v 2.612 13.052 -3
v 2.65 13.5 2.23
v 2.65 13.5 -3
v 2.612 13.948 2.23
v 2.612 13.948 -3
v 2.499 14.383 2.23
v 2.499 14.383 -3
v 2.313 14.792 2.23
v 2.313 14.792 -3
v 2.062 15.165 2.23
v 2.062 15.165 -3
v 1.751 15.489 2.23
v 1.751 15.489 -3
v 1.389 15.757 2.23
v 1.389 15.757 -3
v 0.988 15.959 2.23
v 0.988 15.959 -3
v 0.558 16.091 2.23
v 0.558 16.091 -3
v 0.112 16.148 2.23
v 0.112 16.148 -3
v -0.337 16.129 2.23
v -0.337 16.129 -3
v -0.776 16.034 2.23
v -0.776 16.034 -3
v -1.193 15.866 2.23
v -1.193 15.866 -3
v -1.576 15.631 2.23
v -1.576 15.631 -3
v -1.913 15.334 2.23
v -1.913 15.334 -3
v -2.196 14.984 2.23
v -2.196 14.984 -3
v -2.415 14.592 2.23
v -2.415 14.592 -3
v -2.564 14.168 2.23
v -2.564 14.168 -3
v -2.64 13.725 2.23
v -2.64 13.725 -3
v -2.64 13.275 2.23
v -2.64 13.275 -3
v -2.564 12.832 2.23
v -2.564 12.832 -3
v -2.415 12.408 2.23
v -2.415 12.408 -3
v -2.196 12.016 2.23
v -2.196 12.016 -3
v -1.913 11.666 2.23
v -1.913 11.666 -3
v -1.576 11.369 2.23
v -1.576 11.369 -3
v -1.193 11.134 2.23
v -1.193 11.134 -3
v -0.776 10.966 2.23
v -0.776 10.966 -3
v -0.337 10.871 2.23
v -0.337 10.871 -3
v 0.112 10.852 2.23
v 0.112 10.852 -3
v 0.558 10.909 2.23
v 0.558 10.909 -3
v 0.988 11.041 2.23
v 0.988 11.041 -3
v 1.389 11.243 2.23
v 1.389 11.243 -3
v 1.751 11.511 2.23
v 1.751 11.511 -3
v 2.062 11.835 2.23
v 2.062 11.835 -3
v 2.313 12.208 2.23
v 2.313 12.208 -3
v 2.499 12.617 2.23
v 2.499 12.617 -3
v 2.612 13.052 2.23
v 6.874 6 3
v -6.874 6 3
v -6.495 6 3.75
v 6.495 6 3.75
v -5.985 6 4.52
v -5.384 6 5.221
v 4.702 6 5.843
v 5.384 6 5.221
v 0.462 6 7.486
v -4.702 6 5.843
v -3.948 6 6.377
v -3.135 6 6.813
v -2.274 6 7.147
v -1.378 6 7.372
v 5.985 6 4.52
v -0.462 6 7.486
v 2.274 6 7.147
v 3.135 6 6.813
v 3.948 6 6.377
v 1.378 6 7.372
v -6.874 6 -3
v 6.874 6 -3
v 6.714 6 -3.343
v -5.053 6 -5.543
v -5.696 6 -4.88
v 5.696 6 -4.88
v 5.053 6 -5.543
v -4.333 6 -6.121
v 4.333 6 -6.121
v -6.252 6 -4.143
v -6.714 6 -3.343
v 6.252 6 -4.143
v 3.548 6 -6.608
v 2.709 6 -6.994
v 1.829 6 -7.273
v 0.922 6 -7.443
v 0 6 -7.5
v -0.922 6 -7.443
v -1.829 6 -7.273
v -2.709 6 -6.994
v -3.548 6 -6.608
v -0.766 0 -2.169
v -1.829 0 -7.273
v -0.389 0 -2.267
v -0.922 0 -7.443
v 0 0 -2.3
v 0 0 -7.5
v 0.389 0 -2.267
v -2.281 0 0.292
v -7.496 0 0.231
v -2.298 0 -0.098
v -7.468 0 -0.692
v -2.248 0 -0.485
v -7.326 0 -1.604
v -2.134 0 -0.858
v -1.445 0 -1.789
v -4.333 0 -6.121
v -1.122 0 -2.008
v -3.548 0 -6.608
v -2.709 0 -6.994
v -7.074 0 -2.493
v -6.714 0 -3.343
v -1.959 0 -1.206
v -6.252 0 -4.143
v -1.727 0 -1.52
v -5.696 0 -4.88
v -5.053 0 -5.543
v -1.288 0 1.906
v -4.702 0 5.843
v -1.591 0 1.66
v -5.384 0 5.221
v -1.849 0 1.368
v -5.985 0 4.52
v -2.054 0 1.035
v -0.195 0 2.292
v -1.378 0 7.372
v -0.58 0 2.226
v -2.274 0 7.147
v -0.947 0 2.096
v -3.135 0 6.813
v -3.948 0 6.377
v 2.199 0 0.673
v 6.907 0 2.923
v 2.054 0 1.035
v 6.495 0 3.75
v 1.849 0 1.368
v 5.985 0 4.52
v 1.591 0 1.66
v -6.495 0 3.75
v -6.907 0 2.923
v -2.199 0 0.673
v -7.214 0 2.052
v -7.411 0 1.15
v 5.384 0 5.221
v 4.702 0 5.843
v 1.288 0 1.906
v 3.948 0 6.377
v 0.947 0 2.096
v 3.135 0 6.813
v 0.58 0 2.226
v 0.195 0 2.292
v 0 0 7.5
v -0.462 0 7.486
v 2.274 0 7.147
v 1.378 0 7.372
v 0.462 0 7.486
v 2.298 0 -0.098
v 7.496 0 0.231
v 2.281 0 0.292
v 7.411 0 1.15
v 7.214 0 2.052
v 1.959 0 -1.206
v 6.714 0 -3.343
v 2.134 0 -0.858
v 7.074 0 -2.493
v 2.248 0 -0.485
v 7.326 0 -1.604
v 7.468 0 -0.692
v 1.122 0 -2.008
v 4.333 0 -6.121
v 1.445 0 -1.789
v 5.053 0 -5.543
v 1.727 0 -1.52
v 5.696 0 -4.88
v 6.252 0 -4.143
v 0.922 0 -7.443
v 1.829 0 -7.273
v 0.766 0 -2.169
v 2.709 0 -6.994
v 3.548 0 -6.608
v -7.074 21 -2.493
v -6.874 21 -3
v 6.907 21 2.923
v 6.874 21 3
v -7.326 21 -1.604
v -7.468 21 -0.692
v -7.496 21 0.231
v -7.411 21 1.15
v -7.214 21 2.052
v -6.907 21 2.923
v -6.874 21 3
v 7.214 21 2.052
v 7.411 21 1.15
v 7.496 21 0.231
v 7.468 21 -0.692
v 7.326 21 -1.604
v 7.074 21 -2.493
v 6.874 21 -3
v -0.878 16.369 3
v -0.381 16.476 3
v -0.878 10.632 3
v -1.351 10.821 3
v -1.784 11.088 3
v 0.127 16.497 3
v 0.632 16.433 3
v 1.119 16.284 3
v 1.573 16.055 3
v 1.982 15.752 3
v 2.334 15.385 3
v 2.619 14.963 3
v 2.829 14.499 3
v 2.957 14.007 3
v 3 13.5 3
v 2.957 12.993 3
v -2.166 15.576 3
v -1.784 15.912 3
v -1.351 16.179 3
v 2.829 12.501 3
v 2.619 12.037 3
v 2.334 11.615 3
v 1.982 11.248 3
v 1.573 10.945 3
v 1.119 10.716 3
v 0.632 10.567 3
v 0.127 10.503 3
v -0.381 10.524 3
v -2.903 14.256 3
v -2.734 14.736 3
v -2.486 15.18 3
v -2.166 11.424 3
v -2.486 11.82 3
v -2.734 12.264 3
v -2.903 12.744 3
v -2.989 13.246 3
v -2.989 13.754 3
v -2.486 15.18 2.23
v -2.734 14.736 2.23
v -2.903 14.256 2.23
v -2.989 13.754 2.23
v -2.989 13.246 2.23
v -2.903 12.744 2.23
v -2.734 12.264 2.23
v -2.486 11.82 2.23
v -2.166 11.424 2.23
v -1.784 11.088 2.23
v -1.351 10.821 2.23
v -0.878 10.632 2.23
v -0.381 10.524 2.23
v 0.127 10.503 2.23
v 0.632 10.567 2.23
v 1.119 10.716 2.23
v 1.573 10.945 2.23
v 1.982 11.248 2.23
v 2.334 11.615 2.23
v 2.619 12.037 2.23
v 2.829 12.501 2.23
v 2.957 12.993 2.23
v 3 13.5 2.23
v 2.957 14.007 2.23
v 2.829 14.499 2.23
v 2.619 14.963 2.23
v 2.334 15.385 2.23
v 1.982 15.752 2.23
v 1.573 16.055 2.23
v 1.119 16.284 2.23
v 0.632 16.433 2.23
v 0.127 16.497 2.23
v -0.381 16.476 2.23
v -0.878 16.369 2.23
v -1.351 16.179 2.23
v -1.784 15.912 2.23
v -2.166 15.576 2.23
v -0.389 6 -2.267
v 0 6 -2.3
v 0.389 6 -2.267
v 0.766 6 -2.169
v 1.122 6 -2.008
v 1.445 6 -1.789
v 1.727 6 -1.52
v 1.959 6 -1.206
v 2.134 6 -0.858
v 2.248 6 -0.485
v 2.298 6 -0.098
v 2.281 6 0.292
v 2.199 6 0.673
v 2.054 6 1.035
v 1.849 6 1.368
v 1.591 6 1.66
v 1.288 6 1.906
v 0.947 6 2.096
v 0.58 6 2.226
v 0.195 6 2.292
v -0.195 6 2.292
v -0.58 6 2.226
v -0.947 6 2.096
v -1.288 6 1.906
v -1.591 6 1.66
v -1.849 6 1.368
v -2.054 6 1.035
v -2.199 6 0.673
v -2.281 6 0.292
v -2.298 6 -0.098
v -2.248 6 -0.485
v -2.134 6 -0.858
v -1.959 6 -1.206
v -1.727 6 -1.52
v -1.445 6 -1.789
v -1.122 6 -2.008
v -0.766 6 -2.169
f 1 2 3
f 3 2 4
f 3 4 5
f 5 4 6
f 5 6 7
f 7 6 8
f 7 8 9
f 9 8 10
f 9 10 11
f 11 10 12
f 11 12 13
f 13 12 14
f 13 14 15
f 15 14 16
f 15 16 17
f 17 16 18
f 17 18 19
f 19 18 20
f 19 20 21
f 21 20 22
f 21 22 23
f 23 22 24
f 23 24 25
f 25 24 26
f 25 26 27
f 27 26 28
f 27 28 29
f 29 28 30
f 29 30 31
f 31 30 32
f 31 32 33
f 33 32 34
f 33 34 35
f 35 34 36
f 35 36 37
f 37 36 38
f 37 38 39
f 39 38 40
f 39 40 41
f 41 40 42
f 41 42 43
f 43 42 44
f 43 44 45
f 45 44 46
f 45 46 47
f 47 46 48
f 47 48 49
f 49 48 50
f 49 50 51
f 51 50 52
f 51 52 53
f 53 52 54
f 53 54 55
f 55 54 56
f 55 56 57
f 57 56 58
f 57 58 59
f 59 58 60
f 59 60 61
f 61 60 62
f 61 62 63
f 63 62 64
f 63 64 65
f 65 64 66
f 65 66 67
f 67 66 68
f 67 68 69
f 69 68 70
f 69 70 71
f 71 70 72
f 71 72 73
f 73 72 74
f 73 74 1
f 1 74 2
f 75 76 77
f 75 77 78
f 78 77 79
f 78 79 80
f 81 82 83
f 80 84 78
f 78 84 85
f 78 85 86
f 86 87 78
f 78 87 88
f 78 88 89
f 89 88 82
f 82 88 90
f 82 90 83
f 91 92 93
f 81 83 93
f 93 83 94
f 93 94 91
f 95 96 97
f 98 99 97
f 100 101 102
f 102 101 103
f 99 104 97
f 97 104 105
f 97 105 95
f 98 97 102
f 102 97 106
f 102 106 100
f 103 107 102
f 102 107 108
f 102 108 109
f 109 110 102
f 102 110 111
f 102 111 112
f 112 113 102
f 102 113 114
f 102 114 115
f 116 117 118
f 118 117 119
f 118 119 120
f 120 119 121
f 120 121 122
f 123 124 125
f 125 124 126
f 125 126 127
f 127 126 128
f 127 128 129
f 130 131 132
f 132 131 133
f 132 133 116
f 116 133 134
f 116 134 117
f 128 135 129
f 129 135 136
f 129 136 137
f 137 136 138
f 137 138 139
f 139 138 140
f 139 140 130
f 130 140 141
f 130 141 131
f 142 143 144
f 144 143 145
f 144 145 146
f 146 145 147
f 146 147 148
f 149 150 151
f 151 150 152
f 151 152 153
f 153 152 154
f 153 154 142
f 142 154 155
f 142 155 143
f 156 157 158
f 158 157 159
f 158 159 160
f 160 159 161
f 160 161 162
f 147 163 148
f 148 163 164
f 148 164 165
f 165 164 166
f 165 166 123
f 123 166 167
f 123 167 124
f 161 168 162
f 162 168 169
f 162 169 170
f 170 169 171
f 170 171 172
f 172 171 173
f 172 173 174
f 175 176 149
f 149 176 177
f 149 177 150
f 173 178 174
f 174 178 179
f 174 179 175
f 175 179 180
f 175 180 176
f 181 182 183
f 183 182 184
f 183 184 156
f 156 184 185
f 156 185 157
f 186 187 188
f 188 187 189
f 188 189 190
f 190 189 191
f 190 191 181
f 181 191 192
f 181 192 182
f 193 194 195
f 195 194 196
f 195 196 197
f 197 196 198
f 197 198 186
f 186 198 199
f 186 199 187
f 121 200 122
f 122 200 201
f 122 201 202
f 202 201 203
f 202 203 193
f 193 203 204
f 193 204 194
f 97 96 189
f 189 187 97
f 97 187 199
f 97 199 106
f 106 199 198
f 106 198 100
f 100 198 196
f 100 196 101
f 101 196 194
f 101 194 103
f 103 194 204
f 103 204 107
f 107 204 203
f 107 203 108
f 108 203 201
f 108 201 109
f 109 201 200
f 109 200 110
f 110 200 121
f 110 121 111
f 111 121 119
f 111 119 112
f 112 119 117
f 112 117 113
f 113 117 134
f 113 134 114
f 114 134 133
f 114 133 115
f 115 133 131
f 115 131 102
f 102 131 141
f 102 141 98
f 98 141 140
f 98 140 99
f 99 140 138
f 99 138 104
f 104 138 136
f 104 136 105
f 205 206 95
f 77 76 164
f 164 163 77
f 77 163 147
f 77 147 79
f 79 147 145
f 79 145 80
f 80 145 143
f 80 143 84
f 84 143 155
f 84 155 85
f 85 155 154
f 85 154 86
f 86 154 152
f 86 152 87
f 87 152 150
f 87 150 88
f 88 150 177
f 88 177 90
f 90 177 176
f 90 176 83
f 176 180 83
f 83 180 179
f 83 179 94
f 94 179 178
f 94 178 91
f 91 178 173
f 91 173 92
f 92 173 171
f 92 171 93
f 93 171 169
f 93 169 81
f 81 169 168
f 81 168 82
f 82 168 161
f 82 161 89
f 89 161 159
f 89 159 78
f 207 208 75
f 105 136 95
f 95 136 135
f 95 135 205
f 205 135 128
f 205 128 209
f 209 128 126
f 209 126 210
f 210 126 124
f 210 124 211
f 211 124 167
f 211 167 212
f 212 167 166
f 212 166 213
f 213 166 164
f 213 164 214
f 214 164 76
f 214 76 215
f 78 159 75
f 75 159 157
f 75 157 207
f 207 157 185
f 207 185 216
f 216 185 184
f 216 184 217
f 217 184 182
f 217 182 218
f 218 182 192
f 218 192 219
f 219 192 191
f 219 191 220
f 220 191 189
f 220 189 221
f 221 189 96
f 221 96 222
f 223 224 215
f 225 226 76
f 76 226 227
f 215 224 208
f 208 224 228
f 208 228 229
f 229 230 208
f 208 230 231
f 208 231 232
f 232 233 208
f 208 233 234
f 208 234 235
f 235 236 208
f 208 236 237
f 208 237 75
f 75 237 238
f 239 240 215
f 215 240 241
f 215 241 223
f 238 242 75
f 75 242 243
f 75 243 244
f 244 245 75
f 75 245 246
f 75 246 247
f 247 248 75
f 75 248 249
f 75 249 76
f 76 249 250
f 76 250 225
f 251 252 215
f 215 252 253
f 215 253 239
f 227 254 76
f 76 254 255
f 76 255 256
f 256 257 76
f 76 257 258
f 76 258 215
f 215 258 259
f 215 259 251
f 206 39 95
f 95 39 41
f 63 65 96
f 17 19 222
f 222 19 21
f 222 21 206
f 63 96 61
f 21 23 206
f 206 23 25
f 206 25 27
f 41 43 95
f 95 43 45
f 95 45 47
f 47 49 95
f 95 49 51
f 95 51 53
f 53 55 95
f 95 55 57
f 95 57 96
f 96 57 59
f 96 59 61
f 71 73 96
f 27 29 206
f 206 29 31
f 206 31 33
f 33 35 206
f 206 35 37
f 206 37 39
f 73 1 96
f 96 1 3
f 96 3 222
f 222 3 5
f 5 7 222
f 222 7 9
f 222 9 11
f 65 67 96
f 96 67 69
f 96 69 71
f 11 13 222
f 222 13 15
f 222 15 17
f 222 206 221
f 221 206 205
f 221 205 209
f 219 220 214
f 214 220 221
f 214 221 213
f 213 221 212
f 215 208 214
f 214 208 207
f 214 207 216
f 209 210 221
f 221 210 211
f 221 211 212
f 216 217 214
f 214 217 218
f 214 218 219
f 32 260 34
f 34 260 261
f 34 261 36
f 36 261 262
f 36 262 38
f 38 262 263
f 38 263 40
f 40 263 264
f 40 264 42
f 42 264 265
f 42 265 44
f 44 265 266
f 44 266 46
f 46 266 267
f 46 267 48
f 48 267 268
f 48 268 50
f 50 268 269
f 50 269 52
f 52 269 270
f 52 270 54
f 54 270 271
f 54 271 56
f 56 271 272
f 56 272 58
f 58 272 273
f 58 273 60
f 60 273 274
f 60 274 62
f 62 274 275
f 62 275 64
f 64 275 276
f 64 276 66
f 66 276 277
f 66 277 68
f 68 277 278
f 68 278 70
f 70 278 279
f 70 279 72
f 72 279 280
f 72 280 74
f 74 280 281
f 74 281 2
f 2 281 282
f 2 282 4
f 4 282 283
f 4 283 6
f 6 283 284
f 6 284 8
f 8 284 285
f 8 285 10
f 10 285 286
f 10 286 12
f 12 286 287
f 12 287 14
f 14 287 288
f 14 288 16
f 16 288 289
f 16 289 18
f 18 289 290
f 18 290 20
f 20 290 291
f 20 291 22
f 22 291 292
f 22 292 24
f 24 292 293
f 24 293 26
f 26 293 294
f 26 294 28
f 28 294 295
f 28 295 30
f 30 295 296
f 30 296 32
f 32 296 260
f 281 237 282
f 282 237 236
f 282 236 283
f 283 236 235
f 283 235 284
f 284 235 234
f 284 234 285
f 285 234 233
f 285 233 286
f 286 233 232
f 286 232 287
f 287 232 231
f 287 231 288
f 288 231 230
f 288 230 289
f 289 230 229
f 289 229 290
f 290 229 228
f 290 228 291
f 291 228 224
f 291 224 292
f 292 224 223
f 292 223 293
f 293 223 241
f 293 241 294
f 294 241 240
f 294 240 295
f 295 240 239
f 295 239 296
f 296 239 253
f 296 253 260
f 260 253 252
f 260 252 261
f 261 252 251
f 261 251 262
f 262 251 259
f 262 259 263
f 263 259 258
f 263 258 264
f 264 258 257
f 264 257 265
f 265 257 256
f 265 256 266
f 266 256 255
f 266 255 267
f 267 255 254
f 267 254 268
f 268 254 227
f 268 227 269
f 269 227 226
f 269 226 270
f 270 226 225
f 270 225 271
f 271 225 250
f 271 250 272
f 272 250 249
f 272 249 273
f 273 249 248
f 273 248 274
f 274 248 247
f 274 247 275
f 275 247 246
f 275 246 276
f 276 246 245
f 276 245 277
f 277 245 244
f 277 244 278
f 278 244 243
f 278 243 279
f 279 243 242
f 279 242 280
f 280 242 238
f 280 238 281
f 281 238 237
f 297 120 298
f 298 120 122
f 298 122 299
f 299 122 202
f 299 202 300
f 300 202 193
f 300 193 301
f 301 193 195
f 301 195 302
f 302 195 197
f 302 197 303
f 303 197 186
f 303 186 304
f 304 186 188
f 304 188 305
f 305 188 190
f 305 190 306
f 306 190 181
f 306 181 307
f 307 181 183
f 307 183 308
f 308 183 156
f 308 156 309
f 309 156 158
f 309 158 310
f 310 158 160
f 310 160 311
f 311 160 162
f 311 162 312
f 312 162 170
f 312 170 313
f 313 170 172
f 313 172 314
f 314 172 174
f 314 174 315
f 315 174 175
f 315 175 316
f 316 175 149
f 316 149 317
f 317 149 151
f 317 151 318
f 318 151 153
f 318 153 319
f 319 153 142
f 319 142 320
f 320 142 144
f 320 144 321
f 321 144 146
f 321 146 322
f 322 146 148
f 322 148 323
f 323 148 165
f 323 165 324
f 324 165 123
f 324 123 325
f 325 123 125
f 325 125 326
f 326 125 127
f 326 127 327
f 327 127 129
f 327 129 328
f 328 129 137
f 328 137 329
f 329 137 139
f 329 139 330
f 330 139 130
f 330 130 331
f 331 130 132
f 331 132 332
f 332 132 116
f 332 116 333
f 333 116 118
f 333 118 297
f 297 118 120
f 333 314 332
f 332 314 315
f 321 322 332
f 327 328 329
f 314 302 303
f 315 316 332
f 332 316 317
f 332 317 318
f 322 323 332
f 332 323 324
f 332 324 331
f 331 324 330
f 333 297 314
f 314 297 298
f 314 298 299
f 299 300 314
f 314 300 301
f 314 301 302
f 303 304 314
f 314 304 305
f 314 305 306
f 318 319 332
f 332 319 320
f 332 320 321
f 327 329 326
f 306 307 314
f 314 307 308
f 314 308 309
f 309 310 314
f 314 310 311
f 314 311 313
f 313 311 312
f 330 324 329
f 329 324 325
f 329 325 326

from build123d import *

# Parameters (mm, degrees)
SKETCH1_R           = 7.5
BOSS_EXTRUDE6_DEPTH = 6
BOSS_EXTRUDE7_DEPTH = 21
SKETCH4_R           = 2.65
CUT_EXTRUDE7_DEPTH  = 6
SKETCH7_R           = 3
CUT_EXTRUDE8_DEPTH  = 0.77
SKETCH8_R           = 2.3
CUT_EXTRUDE9_DEPTH  = 6


with BuildPart() as part:
    # Sketch1 → Boss-Extrude6 (new body)
    with BuildSketch(Plane(origin=(0, 0, 0), x_dir=(1, 0, 0), z_dir=(0, 1, 0))):
        Circle(SKETCH1_R)
    extrude(amount=BOSS_EXTRUDE6_DEPTH)

    # Sketch1<9> → Boss-Extrude7 (add)
    with BuildSketch(Plane(origin=(0, 0, 0), x_dir=(1, 0, 0), z_dir=(0, 1, 0))):
        with BuildLine():
            ThreePointArc((7.5, 0), (7.341797347, 1.532322328), (6.873863542, 3))
            Line((6.873863542, 3), (-6.873863542, 3))
            ThreePointArc((-6.873863542, 3), (-7.5, 0), (-6.873863542, -3))
            Line((-6.873863542, -3), (6.873863542, -3))
            ThreePointArc((6.873863542, -3), (7.341797347, -1.532322328), (7.5, 0))
        make_face()
    extrude(amount=BOSS_EXTRUDE7_DEPTH)

    # Sketch4 → Cut-Extrude7 (cut)
    with BuildSketch(Plane.XY.offset(3)):
        with Locations((0, 13.5)):
            Circle(SKETCH4_R)
    extrude(amount=-CUT_EXTRUDE7_DEPTH, mode=Mode.SUBTRACT)

    # Sketch7 → Cut-Extrude8 (cut)
    with BuildSketch(Plane.XY.offset(3)):
        with Locations((0, 13.5)):
            Circle(SKETCH7_R)
    extrude(amount=-CUT_EXTRUDE8_DEPTH, mode=Mode.SUBTRACT)

    # Sketch8 → Cut-Extrude9 (cut)
    with BuildSketch(Plane.XZ):
        Circle(SKETCH8_R)
    extrude(amount=-CUT_EXTRUDE9_DEPTH, mode=Mode.SUBTRACT)


solid = part.part
